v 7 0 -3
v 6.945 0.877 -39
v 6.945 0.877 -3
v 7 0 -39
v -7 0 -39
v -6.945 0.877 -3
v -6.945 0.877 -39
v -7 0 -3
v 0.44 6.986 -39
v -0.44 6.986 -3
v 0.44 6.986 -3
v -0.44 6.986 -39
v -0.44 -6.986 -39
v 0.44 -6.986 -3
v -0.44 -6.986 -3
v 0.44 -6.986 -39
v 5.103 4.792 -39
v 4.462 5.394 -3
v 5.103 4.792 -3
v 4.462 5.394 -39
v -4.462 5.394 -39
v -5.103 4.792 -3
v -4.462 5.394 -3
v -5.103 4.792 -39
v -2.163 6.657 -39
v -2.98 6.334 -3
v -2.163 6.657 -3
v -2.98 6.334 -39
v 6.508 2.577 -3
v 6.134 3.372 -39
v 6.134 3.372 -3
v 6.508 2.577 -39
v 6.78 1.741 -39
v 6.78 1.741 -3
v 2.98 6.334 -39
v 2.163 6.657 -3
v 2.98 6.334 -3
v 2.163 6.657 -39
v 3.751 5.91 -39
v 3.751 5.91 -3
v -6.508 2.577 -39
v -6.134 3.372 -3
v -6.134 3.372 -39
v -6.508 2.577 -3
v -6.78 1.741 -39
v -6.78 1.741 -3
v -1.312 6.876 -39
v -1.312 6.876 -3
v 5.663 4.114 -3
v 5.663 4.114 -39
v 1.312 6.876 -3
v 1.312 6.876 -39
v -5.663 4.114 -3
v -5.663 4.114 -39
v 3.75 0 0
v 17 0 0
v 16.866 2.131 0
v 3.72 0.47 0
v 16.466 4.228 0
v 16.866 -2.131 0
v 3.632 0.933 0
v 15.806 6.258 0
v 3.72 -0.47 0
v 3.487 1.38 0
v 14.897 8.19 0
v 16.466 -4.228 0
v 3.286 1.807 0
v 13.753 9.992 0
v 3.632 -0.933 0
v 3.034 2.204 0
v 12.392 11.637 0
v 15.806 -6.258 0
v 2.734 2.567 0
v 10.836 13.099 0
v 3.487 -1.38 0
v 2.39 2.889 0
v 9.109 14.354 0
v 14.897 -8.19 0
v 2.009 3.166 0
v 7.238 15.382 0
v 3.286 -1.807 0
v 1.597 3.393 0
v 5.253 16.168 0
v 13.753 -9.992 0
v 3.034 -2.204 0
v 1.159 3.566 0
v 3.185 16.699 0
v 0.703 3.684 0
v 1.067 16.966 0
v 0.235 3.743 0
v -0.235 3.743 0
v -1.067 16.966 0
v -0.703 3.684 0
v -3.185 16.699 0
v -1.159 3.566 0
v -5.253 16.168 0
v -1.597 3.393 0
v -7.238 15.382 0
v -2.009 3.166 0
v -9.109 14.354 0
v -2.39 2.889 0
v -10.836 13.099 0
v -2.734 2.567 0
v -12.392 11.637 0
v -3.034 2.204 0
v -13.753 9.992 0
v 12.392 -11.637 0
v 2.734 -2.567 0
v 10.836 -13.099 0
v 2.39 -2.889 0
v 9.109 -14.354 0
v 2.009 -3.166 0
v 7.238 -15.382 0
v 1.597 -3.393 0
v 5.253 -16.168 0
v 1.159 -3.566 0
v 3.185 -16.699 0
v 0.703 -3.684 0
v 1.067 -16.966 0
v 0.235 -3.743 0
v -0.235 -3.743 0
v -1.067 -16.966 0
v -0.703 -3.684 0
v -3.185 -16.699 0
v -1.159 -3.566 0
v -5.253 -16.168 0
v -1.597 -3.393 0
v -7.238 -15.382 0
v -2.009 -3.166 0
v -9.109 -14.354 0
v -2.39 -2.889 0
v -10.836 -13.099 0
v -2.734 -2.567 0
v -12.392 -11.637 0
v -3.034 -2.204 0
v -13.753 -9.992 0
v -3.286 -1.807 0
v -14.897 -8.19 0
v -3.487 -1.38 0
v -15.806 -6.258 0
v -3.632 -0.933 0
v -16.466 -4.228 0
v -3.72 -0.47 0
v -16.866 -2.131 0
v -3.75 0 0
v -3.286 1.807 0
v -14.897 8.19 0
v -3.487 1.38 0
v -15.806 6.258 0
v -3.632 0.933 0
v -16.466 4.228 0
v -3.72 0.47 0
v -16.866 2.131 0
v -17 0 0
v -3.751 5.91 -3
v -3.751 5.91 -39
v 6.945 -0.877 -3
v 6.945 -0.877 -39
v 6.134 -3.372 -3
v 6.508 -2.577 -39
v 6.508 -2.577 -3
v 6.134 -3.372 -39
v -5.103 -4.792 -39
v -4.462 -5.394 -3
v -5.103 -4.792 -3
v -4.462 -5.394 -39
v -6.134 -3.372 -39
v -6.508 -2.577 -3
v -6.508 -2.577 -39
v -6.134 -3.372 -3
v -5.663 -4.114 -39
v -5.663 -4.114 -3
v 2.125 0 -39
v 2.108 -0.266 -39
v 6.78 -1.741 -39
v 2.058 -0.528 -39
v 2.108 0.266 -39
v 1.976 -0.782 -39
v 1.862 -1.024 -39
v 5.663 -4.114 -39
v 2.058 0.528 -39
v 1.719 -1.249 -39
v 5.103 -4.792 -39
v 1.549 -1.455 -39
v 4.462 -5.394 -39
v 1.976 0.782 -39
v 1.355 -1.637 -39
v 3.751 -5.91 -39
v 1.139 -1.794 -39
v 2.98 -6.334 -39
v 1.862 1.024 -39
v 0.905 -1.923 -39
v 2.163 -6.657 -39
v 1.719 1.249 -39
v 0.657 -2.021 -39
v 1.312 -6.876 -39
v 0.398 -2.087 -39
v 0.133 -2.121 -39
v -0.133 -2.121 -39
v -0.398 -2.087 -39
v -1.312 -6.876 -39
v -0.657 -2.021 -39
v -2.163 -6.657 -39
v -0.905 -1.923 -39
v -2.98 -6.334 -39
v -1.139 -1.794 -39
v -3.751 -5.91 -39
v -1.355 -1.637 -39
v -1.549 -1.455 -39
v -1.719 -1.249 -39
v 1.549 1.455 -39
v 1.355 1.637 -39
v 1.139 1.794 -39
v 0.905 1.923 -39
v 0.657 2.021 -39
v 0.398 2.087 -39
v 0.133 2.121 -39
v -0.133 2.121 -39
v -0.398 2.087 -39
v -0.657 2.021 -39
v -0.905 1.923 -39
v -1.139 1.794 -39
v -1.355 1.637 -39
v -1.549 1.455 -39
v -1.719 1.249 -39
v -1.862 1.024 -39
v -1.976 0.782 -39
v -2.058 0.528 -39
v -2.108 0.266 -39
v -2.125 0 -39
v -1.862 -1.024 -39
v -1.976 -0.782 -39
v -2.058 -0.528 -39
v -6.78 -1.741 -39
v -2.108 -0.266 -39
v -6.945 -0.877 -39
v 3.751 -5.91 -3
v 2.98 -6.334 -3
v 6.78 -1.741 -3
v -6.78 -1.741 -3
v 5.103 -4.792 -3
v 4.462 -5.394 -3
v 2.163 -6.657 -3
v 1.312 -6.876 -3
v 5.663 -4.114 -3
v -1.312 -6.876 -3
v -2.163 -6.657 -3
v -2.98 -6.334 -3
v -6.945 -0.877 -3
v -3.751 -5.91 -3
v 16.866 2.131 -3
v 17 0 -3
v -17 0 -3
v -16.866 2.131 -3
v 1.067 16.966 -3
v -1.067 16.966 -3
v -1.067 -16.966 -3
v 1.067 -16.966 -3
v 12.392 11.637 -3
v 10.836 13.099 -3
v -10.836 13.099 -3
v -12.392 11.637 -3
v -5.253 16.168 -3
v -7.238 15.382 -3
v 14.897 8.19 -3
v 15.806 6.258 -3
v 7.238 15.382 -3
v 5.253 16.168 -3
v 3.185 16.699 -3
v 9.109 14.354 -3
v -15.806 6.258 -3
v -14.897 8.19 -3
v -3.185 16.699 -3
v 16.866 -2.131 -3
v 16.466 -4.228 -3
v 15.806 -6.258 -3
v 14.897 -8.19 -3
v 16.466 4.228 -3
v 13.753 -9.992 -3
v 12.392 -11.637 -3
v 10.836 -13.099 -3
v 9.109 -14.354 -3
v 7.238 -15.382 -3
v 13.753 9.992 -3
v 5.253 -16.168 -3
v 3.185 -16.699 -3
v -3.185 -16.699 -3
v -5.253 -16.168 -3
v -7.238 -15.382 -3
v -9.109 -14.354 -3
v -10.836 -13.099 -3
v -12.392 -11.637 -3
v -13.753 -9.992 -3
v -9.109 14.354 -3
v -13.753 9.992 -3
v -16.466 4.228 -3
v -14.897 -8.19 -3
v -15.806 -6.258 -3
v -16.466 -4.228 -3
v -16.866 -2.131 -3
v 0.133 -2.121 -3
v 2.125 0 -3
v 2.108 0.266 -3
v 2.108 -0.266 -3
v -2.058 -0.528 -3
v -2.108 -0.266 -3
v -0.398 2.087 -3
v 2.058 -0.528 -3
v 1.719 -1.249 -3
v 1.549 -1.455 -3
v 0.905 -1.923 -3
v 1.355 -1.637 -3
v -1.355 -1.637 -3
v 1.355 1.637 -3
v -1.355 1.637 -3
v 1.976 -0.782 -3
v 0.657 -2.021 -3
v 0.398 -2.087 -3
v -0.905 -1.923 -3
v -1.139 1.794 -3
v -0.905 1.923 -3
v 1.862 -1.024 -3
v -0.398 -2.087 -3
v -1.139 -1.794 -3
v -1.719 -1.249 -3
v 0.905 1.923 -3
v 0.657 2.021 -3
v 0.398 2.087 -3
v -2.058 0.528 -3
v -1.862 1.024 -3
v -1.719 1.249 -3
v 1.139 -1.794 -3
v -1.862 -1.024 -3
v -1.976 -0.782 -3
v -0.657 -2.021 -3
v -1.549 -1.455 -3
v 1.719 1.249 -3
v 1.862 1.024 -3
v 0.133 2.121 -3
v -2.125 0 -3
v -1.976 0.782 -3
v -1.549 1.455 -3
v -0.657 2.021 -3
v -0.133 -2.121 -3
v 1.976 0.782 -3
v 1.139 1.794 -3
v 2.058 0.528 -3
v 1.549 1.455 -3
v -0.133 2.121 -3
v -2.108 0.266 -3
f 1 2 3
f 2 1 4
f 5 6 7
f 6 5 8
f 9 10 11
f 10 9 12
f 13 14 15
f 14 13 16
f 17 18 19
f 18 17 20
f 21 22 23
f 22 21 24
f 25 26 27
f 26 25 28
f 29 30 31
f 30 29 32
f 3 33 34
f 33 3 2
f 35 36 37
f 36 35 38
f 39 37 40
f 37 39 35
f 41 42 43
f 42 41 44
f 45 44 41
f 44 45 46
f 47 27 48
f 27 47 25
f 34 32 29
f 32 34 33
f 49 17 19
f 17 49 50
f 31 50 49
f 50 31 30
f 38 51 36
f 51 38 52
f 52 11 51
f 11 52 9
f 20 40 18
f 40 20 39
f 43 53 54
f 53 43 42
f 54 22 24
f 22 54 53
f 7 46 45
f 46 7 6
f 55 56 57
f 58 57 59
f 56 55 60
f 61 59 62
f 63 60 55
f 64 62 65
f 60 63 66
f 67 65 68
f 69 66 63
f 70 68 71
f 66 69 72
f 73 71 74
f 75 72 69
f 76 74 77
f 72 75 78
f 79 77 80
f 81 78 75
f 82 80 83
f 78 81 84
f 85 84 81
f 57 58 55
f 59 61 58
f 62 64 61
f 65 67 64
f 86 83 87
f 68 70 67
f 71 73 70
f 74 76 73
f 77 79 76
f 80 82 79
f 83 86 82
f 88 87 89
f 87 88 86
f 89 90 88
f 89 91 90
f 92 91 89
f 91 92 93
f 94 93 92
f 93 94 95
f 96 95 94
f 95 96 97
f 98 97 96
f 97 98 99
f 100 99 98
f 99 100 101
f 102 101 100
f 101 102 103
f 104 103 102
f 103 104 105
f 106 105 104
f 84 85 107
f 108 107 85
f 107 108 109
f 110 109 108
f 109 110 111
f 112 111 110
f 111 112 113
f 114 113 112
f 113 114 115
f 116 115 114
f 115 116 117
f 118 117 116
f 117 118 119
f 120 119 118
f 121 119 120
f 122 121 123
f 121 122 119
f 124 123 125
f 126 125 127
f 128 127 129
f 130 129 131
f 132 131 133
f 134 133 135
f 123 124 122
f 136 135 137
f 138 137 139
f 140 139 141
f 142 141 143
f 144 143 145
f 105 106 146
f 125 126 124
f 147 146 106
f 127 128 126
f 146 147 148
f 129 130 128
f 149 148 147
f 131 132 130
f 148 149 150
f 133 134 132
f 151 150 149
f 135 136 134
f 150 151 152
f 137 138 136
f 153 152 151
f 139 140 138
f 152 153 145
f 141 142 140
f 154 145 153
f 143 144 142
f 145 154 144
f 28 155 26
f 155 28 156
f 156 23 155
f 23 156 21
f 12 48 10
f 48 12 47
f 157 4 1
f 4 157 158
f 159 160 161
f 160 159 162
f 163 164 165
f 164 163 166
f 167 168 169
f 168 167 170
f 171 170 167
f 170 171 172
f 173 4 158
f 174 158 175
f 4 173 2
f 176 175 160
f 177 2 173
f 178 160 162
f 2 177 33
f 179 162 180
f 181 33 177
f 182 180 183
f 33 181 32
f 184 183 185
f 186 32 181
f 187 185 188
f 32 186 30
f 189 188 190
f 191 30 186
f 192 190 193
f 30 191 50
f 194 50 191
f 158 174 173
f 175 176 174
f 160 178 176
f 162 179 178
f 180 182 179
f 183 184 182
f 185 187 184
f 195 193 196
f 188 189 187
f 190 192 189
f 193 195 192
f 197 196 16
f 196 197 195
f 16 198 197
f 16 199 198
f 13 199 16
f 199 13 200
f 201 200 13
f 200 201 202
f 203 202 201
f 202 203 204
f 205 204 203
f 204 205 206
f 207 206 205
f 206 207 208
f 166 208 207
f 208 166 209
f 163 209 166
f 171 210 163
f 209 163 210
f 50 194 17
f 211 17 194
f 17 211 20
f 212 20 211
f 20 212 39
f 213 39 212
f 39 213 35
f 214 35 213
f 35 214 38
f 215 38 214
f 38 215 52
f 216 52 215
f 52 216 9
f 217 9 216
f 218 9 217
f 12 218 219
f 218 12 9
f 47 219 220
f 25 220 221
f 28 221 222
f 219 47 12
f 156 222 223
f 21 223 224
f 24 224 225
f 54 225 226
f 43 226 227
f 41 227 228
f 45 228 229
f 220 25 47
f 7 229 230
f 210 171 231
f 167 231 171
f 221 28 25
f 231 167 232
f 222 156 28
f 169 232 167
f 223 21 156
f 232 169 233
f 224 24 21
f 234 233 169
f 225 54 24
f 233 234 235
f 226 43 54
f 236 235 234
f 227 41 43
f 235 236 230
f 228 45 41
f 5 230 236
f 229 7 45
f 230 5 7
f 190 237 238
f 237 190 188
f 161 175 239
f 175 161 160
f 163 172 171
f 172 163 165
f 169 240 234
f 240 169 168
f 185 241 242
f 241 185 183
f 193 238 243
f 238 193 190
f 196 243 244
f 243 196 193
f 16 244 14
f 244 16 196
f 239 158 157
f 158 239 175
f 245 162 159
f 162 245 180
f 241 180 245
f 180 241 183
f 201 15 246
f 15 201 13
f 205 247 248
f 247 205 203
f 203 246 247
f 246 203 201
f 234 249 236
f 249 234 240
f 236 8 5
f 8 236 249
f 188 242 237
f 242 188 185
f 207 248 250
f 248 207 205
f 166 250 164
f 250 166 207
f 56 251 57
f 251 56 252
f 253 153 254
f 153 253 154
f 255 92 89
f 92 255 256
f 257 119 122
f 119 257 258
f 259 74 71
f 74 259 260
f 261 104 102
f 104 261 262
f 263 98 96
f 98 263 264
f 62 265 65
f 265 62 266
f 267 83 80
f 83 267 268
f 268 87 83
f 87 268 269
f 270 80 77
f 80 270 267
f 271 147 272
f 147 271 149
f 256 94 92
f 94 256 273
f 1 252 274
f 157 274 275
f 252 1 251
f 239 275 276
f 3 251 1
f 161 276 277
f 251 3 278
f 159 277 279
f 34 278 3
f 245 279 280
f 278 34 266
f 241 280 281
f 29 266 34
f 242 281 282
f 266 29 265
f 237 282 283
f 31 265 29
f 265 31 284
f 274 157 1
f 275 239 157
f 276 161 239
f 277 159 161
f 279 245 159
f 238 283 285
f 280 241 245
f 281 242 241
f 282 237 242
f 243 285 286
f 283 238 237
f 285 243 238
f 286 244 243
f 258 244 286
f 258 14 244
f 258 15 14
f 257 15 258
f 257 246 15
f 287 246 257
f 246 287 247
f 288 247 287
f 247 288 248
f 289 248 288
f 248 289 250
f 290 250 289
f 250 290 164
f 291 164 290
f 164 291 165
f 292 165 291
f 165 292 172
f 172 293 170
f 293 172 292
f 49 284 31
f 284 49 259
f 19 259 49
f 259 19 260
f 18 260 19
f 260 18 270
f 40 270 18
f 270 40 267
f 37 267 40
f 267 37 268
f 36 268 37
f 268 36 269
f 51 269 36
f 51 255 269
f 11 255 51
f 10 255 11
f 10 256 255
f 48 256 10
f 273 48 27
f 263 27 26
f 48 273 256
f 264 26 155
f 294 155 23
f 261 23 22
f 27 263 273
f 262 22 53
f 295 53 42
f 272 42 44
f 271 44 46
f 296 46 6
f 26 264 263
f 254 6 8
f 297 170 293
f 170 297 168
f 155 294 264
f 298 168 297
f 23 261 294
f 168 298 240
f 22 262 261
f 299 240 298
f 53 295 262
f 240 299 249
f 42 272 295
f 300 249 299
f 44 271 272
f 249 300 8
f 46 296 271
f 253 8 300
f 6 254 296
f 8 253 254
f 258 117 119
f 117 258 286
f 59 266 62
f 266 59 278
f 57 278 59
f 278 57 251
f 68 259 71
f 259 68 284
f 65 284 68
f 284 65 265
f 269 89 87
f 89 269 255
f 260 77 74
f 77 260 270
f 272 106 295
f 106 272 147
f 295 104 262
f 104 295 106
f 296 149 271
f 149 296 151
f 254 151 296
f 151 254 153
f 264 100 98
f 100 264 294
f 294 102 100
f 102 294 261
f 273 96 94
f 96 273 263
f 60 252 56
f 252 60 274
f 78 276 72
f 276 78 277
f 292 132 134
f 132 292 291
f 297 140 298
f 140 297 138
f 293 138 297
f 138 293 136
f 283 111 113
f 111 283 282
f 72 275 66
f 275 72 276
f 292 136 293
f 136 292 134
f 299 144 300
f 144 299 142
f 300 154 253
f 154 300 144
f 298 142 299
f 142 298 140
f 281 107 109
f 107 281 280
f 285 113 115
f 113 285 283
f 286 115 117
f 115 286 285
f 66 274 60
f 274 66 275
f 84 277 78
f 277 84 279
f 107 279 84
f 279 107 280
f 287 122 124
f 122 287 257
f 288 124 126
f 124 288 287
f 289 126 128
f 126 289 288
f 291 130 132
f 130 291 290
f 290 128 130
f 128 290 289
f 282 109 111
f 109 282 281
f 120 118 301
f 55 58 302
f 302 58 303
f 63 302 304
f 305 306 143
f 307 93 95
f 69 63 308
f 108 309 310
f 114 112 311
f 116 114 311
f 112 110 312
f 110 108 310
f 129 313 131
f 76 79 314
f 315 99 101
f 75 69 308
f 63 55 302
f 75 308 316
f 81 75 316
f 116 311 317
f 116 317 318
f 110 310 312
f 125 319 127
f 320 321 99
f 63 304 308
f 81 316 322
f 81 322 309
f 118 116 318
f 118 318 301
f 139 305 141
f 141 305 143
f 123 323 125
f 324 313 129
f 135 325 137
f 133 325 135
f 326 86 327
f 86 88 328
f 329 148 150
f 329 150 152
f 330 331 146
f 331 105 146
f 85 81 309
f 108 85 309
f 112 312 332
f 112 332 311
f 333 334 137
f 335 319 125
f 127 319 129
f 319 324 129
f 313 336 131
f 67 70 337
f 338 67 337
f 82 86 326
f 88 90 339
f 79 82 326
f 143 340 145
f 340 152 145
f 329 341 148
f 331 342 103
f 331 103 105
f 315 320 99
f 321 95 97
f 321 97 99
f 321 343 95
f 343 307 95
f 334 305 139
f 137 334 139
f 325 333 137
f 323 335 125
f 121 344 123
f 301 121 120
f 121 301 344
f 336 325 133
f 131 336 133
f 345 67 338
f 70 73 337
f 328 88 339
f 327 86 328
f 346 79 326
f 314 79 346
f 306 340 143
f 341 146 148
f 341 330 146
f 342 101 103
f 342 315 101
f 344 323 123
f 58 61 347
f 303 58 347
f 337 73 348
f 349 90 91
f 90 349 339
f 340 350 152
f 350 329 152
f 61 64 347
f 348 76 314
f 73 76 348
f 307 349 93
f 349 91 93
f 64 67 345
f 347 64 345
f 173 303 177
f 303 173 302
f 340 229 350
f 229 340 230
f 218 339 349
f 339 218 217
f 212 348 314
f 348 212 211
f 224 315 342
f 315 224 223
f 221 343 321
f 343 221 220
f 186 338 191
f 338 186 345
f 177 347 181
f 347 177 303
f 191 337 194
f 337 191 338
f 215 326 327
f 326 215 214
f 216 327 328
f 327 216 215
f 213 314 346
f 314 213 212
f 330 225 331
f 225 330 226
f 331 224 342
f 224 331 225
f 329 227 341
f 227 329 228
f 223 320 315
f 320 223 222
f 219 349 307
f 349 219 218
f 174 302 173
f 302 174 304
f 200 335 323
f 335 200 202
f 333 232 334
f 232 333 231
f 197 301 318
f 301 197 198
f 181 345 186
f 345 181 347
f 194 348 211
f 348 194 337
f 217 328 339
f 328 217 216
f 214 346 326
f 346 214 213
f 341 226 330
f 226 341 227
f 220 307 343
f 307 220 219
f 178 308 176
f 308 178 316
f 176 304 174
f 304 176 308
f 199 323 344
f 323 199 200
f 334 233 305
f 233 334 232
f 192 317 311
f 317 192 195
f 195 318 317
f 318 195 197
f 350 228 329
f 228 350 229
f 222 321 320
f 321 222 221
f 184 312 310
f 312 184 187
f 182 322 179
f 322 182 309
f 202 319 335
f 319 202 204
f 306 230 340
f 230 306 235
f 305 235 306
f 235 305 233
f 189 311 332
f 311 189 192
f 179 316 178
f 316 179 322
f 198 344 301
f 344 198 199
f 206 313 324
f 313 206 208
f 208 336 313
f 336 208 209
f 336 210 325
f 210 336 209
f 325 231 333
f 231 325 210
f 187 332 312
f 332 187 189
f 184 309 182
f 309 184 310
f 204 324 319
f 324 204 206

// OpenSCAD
$fn = 50;


difference() {
	union() {
		translate(v = [0, 0, -39.0000000000]) {
			cylinder(h = 39, r = 7.0000000000);
		}
		translate(v = [0, 0, -3.0000000000]) {
			cylinder(h = 3, r = 17.0000000000);
		}
	}
	union() {
		translate(v = [0, 0, 0]) {
			rotate(a = [0, 0, 0]) {
				difference() {
					union() {
						#translate(v = [0, 0, -39.0000000000]) {
							cylinder(h = 39, r = 2.0000000000);
						}
						#translate(v = [0, 0, -3]) {
							cylinder(h = 3, r1 = 2.1250000000, r2 = 3.7500000000);
						}
						#translate(v = [0, 0, -39.0000000000]) {
							cylinder(h = 39, r = 2.1250000000);
						}
						#translate(v = [0, 0, -39.0000000000]) {
							cylinder(h = 39, r = 2.0000000000);
						}
					}
					union();
				}
			}
		}
	}
}
